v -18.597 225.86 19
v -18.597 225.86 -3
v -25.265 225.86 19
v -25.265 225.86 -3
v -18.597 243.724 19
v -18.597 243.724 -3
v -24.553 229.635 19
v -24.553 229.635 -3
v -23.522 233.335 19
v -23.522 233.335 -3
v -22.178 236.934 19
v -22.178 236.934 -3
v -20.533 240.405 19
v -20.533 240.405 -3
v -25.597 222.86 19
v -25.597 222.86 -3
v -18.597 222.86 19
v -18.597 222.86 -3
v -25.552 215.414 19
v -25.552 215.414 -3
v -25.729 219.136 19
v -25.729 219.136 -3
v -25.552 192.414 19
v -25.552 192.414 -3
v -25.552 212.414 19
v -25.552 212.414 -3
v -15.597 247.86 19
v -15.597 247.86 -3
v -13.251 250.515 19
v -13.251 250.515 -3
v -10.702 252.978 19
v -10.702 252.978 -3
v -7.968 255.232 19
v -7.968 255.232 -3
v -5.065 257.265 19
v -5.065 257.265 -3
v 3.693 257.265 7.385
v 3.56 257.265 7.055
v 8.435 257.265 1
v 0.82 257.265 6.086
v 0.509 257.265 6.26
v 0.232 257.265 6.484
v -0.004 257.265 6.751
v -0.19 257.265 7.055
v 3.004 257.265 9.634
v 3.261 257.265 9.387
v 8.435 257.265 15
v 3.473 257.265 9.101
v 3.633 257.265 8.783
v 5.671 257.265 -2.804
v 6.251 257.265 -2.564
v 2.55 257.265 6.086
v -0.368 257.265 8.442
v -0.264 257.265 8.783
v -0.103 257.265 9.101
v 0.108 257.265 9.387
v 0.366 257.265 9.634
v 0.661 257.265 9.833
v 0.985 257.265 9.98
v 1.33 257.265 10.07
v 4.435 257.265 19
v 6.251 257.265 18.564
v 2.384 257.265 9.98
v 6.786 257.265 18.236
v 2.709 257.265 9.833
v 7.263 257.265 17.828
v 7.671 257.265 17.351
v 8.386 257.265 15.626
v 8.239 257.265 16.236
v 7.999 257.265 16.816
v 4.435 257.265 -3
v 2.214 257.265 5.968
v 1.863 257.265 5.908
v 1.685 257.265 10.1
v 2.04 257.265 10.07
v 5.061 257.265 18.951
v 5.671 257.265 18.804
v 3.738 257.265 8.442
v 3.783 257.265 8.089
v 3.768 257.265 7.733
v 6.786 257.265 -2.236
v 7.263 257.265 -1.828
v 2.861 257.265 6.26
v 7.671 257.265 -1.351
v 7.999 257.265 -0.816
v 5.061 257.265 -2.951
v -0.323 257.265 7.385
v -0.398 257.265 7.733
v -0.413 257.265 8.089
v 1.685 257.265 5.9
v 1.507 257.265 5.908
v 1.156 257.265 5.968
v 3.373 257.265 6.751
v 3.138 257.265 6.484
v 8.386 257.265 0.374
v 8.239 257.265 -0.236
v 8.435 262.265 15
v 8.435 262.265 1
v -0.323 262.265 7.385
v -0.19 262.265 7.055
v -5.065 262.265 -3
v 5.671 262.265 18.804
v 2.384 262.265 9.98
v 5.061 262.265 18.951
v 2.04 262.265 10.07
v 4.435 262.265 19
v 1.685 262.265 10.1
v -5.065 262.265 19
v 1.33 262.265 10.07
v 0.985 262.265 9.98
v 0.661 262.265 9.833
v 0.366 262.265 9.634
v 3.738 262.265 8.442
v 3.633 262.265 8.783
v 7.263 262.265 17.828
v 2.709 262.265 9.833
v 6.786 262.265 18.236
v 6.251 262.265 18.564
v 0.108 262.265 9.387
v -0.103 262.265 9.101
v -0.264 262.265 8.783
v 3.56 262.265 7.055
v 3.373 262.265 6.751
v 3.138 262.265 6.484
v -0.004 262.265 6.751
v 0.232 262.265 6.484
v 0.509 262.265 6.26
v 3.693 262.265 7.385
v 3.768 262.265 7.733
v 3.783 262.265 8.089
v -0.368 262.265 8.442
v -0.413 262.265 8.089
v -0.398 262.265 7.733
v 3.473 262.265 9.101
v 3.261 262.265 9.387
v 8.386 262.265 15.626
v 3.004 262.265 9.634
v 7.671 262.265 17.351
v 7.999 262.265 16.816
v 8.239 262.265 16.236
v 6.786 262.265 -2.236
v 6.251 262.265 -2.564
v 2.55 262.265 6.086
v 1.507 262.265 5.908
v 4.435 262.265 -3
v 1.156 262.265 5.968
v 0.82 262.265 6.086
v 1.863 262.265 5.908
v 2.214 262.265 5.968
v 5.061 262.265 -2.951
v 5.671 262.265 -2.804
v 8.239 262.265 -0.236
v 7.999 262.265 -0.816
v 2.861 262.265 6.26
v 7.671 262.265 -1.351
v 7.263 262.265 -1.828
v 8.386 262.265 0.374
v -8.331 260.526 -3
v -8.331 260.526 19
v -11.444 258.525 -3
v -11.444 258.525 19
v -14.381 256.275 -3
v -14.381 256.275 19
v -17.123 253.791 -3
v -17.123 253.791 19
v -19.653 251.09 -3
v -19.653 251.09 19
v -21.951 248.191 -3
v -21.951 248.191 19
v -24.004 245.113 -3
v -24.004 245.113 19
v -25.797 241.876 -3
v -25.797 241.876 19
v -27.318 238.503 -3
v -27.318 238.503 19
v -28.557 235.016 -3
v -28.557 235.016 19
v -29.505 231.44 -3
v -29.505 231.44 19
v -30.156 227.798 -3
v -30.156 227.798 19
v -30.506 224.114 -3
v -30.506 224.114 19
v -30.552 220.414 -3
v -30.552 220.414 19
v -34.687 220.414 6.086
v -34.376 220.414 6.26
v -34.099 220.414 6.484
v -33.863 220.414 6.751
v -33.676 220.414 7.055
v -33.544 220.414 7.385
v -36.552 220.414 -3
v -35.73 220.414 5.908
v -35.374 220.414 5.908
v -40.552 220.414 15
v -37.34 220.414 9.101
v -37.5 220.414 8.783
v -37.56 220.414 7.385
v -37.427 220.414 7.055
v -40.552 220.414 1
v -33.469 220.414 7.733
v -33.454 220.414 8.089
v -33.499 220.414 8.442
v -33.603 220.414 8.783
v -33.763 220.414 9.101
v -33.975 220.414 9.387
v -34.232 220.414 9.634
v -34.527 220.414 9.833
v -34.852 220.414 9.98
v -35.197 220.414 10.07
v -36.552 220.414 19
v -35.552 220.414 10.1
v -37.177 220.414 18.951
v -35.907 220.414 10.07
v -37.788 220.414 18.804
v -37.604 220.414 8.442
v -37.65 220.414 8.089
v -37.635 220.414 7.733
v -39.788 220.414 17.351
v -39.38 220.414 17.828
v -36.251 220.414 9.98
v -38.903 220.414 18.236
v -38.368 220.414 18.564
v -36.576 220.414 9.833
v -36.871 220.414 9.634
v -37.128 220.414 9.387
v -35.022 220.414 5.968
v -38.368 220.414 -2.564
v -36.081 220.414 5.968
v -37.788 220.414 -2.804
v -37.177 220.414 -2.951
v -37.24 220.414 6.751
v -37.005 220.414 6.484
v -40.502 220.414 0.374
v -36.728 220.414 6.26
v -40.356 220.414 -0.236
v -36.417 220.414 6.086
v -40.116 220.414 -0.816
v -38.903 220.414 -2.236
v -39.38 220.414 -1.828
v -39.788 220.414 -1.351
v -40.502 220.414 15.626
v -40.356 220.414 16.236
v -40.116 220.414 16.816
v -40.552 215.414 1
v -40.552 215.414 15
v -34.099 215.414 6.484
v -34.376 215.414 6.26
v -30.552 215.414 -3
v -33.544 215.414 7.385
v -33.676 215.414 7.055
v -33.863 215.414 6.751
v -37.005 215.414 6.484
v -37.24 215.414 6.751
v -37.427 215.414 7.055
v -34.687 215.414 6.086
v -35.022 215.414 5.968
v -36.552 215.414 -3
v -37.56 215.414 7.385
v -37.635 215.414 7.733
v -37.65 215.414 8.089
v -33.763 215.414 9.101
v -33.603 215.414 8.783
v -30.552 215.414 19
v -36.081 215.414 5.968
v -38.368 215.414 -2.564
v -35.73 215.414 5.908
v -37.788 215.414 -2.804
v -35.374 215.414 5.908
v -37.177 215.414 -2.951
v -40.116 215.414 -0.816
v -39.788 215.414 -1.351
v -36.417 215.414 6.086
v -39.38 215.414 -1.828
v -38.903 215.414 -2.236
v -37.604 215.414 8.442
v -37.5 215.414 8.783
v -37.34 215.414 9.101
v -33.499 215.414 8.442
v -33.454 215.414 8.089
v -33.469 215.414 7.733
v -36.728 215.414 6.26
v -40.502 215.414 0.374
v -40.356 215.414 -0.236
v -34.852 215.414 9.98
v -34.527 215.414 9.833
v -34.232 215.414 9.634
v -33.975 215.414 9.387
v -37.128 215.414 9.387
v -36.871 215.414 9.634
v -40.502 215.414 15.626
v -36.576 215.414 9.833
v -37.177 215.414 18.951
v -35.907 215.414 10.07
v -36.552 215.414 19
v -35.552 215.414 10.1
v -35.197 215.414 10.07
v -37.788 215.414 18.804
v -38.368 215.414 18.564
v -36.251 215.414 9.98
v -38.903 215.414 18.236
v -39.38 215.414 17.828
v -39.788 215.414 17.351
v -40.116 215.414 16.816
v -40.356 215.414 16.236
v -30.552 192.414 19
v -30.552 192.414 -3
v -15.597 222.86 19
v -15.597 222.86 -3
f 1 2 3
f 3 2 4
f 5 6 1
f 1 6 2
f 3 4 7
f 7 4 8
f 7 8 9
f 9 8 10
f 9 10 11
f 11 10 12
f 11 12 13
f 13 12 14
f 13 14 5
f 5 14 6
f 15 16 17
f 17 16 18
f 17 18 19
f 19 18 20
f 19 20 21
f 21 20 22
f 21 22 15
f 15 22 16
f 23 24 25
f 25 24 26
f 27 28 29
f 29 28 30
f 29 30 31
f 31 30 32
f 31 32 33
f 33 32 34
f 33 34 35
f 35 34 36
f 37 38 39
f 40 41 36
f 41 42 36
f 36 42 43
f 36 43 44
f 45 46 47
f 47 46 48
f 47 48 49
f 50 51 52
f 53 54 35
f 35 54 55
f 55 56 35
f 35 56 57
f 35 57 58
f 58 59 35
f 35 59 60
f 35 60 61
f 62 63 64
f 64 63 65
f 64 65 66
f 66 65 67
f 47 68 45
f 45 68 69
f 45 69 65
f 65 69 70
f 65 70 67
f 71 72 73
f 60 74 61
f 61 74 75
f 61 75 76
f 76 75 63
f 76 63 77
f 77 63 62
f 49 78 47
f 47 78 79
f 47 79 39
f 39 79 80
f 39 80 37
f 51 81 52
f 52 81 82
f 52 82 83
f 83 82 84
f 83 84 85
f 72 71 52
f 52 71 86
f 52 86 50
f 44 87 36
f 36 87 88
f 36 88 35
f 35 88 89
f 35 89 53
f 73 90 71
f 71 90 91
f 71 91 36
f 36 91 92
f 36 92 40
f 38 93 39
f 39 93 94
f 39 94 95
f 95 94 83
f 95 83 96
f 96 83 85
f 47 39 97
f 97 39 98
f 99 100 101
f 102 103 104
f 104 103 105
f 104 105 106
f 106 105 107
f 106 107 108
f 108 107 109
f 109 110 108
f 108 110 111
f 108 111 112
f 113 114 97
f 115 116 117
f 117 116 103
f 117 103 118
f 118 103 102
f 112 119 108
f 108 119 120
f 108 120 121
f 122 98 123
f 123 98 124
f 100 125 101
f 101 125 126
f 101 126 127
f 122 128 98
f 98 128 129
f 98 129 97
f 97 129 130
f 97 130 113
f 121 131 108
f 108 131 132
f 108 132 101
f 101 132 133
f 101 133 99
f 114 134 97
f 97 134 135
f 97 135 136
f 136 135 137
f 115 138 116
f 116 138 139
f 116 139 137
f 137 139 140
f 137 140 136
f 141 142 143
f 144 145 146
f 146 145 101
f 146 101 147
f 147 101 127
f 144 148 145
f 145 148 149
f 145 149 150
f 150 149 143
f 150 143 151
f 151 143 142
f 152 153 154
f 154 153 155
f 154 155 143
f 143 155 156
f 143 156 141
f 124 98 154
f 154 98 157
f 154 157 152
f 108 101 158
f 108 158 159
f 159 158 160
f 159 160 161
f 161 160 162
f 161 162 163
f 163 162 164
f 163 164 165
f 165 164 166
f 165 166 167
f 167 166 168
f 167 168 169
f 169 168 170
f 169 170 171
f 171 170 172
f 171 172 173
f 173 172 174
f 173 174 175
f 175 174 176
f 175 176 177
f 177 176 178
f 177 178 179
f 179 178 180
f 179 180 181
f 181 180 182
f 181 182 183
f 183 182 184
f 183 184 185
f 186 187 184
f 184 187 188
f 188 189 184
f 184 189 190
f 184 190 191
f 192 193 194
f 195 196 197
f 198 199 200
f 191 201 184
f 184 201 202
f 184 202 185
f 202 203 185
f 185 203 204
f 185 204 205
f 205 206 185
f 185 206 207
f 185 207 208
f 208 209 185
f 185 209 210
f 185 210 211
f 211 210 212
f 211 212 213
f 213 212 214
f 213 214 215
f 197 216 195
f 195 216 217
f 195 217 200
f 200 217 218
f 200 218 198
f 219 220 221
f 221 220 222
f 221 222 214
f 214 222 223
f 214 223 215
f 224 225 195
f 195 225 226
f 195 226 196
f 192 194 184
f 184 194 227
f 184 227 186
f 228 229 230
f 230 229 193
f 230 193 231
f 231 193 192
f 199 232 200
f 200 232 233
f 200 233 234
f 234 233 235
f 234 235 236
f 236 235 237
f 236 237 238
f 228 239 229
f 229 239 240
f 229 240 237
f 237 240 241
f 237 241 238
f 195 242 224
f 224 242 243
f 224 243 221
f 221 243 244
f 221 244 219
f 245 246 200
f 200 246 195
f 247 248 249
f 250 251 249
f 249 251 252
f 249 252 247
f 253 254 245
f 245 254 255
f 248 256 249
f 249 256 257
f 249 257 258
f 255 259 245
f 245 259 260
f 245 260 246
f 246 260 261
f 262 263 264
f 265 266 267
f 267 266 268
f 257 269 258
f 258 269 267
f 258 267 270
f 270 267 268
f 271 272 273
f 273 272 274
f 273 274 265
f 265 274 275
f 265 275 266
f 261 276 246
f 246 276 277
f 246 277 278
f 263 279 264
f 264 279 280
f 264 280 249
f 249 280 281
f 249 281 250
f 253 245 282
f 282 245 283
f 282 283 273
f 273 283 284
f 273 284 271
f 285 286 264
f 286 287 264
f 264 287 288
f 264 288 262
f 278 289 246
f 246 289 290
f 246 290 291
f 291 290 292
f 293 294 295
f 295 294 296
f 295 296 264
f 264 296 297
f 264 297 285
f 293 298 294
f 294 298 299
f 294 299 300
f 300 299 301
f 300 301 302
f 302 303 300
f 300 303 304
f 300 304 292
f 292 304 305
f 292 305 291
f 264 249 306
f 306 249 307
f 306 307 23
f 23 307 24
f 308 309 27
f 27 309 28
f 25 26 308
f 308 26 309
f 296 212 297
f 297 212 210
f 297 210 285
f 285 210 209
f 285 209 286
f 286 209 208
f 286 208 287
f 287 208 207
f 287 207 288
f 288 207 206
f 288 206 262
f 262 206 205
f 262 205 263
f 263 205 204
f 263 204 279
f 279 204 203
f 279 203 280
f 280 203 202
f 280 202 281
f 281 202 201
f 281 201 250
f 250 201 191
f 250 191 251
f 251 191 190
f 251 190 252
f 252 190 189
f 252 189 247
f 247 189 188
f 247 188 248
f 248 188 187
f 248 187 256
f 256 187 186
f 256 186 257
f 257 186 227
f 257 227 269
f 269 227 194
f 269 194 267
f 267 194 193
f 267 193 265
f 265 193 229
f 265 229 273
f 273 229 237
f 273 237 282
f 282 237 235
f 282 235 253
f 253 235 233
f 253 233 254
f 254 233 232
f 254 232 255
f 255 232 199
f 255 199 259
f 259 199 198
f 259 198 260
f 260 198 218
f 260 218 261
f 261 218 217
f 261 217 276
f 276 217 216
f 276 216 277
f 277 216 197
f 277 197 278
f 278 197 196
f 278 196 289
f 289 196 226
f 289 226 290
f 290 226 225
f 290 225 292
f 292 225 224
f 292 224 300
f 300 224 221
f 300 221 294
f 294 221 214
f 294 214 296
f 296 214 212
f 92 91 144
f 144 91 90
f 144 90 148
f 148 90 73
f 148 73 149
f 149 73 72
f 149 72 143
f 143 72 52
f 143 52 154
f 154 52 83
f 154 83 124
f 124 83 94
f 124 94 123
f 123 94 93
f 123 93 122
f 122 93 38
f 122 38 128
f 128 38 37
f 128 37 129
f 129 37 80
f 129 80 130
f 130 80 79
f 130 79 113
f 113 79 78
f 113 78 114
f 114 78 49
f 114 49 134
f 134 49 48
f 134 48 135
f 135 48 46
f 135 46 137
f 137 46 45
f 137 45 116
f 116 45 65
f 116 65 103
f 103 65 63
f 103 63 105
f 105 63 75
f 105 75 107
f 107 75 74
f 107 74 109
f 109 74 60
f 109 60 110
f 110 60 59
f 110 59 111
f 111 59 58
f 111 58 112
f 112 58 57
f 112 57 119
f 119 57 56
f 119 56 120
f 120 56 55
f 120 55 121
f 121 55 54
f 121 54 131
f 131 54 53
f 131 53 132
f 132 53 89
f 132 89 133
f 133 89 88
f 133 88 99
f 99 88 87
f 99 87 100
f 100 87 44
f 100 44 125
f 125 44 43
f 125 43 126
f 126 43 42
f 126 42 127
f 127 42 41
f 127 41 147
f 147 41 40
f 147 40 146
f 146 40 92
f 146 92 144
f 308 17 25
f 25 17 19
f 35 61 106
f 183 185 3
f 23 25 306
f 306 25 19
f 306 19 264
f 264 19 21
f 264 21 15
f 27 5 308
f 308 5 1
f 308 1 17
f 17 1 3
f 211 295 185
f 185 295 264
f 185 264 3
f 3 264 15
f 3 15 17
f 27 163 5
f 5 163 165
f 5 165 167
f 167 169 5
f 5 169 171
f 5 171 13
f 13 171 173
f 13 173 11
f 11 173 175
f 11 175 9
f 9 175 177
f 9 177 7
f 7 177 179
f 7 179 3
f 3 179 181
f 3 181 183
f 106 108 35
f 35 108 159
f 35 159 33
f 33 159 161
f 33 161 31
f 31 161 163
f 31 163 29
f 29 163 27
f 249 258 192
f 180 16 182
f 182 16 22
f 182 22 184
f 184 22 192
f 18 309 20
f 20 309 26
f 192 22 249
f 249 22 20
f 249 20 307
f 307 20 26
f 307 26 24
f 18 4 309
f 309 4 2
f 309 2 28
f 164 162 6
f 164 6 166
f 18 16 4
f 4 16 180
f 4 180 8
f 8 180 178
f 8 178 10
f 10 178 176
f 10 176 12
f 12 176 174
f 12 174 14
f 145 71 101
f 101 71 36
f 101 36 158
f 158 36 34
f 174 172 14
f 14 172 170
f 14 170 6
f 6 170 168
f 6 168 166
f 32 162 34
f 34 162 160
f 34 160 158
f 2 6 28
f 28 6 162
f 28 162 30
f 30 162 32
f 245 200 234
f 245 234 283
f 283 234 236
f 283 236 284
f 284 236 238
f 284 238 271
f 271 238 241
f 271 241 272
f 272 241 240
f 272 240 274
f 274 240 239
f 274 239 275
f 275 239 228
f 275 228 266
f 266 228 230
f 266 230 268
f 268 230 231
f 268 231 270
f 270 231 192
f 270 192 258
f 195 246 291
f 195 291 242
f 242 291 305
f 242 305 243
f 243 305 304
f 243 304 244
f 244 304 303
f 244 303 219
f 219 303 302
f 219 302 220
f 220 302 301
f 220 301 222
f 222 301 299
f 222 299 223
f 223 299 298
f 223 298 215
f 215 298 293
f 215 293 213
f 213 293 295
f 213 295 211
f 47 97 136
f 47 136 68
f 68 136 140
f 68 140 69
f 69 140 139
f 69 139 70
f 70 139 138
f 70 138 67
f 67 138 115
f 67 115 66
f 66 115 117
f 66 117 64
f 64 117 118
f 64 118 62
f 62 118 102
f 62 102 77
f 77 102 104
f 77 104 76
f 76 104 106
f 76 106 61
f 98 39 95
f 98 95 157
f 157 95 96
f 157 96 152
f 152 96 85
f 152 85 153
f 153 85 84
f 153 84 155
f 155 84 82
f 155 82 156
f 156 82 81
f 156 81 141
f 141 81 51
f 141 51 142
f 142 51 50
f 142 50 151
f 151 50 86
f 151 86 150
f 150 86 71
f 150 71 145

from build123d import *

# Parameters (mm, degrees)
SKETCH3_W                = 13.5
SKETCH3_H                = 5
SKETCH3_W_2              = 10
SKETCH3_W_3              = 5
SKETCH3_H_2              = 23
BOSS_EXTRUDE1_DEPTH      = 45
FILLET1_R                = 2
SKETCH5_R                = 2.1
CUT_EXTRUDE2_DEPTH       = 45
SKETCH6_R                = 2.1
CUT_EXTRUDE3_DEPTH       = 45
SKETCH7_W                = 8.210459319
SKETCH7_H                = 32.58724939
BOSS_EXTRUDE2_DEPTH      = 5
SKETCH8_R                = 2.1
CUT_EXTRUDE5_DEPTH       = 45
BOSS_EXTRUDE3_DEPTH      = 45
SKETCH10_W               = 60.355694637
SKETCH10_H               = 75.381613981
CUT_EXTRUDE7_DEPTH       = 9
SKETCH13_W               = 6.095088126
SKETCH13_H               = 29.055723933
BOSS_EXTRUDE6_DEPTH      = 5
SKETCH14_W               = 6.424633762
SKETCH14_H               = 30.784703445
BOSS_EXTRUDE7_DEPTH      = 5
FILLET3_R                = 2
SKETCH15_R               = 2.1
CUT_EXTRUDE8_DEPTH       = 9
SKETCH16_R               = 2.1
CUT_EXTRUDE9_DEPTH       = 9
SKETCH17_R               = 2.1
SKETCH17_W               = 51.061541061
SKETCH17_H               = 6.00536962
SKETCH17_W_2             = 58.971241115
SKETCH17_H_2             = 35.120826058
CUT_EXTRUDE10_DEPTH      = 42.850344031
CUT_EXTRUDE10_DEPTH_BACK = 29
BOSS_EXTRUDE8_DEPTH      = 5
BOSS_EXTRUDE9_DEPTH      = 5
FILLET5_R                = 4


with BuildPart() as part:
    # Sketch3 → Boss-Extrude1 (new body)
    with BuildSketch(Plane.XY):
        with BuildLine():
            ThreePointArc((-5.06519953, 257.264696919), (-21.146881422, 239.197551787), (-25.551614771, 215.414352888))
            Line((-25.551614771, 215.414352888), (-30.551614771, 215.414352888))
            Line((-30.551614771, 215.414352888), (-30.551614771, 220.414352888))
            ThreePointArc((-30.551614771, 220.414352888), (-24.004098535, 245.112635185), (-5.06519953, 262.264696919))
            Line((-5.06519953, 262.264696919), (-5.06519953, 257.264696919))
        make_face()
        with Locations((1.68480047, 259.764696919)):
            Rectangle(SKETCH3_W, SKETCH3_H)
        with Locations((-35.551614771, 217.914352888)):
            Rectangle(SKETCH3_W_2, SKETCH3_H)
        with Locations((-28.051614771, 203.914352888)):
            Rectangle(SKETCH3_W_3, SKETCH3_H_2)
    extrude(amount=BOSS_EXTRUDE1_DEPTH)

    # Fillet1
    fillet1_edges = [part.edges().sort_by_distance(p)[0] for p in [
        (-40.551614771, 217.914352888, 0),
        (8.43480047, 259.764696919, 45),
        (8.43480047, 259.764696919, 0),
        (-40.551614771, 217.914352888, 45),
    ]]
    fillet(fillet1_edges, radius=FILLET1_R)

    # Sketch5 → Cut-Extrude2 (cut)
    with BuildSketch(Plane(origin=(0, 262.264696919, 0), x_dir=(1, 0, 0), z_dir=(0, 1, 0))):
        with Locations((0.24480047, -40)):
            Circle(SKETCH5_R)
        with Locations((0.24480047, -14.8)):
            Circle(SKETCH5_R)
    extrude(amount=-CUT_EXTRUDE2_DEPTH, mode=Mode.SUBTRACT)

    # Sketch6 → Cut-Extrude3 (cut)
    with BuildSketch(Plane(origin=(0, 220.414352888, 0), x_dir=(1, 0, 0), z_dir=(0, 1, 0))):
        with Locations((-35.551614771, -10)):
            Circle(SKETCH6_R)
        with Locations((-35.551614771, -35)):
            Circle(SKETCH6_R)
    extrude(amount=-CUT_EXTRUDE3_DEPTH, mode=Mode.SUBTRACT)

    # Sketch7 → Boss-Extrude2 (add)
    with BuildSketch(Plane(origin=(0, 262.264696919, 0), x_dir=(1, 0, 0), z_dir=(0, 1, 0))):
        with Locations((1.09445166, -26.923464517)):
            Rectangle(SKETCH7_W, SKETCH7_H)
    extrude(amount=-BOSS_EXTRUDE2_DEPTH)

    # Sketch8 → Cut-Extrude5 (cut)
    with BuildSketch(Plane(origin=(0, 262.264696919, 0), x_dir=(1, 0, 0), z_dir=(0, 1, 0))):
        with Locations((0.24480047, -5)):
            Circle(SKETCH8_R)
        with Locations((0.24480047, -30.2)):
            Circle(SKETCH8_R)
    extrude(amount=-CUT_EXTRUDE5_DEPTH, mode=Mode.SUBTRACT)

    # Sketch9 → Boss-Extrude3 (add, through all)
    with BuildSketch(Plane.XY.offset(45)):
        with BuildLine():
            ThreePointArc((-25.265361734, 225.859750777), (-25.456525287, 224.362535182), (-25.597369426, 222.859750777))
            Line((-25.597369426, 222.859750777), (-18.597369426, 222.859750777))
            Line((-18.597369426, 222.859750777), (-15.597369426, 222.859750777))
            Line((-15.597369426, 222.859750777), (-15.597369426, 247.859750777))
            ThreePointArc((-15.597369426, 247.859750777), (-17.156118075, 245.834377519), (-18.597369426, 243.72377838))
            Line((-18.597369426, 243.72377838), (-18.597369426, 225.859750777))
            Line((-18.597369426, 225.859750777), (-25.265361734, 225.859750777))
        make_face()
        Polygon((-15.597369426, 222.859750777), (-18.597369426, 222.859750777), (-25.551614771, 215.414352888), (-25.551614771, 212.414352888), align=None)
    extrude(amount=-BOSS_EXTRUDE3_DEPTH)

    # Sketch10 → Cut-Extrude7 (cut)
    with BuildSketch(Plane.XY.offset(45)):
        with Locations((-21.743046849, 224.573889929)):
            Rectangle(SKETCH10_W, SKETCH10_H)
    extrude(amount=-CUT_EXTRUDE7_DEPTH, mode=Mode.SUBTRACT)

    # Sketch13 → Boss-Extrude6 (add)
    with BuildSketch(Plane(origin=(0, 220.414352888, 0), x_dir=(1, 0, 0), z_dir=(0, 1, 0))):
        with Locations((-35.175849568, -21.472138034)):
            Rectangle(SKETCH13_W, SKETCH13_H)
    extrude(amount=-BOSS_EXTRUDE6_DEPTH)

    # Sketch14 → Boss-Extrude7 (add)
    with BuildSketch(Plane(origin=(0, 262.264696919, 0), x_dir=(1, 0, 0), z_dir=(0, 1, 0))):
        with Locations((0.1637931, -17.411075239)):
            Rectangle(SKETCH14_W, SKETCH14_H)
    extrude(amount=-BOSS_EXTRUDE7_DEPTH)

    # Fillet3
    fillet3_edges = [part.edges().sort_by_distance(p)[0] for p in [
        (-40.551614771, 217.914352888, 36),
        (8.43480047, 259.764696919, 36),
    ]]
    fillet(fillet3_edges, radius=FILLET3_R)

    # Sketch15 → Cut-Extrude8 (cut)
    with BuildSketch(Plane(origin=(0, 220.414352888, 0), x_dir=(1, 0, 0), z_dir=(0, 1, 0))):
        with Locations((-35.551614771, -8)):
            Circle(SKETCH15_R)
        with Locations((-35.551614771, -28)):
            Circle(SKETCH15_R)
    extrude(amount=-CUT_EXTRUDE8_DEPTH, mode=Mode.SUBTRACT)

    # Sketch16 → Cut-Extrude9 (cut)
    with BuildSketch(Plane(origin=(0, 262.264696919, 0), x_dir=(1, 0, 0), z_dir=(0, 1, 0))):
        with Locations((1.68480047, -8)):
            Circle(SKETCH16_R)
        with Locations((1.68480047, -28)):
            Circle(SKETCH16_R)
    extrude(amount=-CUT_EXTRUDE9_DEPTH, mode=Mode.SUBTRACT)

    # Sketch17 → Cut-Extrude10 (cut, two sides)
    with BuildSketch(Plane(origin=(0, 220.414352888, 0), x_dir=(1, 0, 0), z_dir=(0, 1, 0))) as cut_extrude10_sk:
        with Locations((-35.551614771, -8)):
            Circle(SKETCH17_R)
        with Locations((-15.020844241, 1.00268481)):
            Rectangle(SKETCH17_W, SKETCH17_H)
        with Locations((-11.065994214, -31.560413029)):
            Rectangle(SKETCH17_W_2, SKETCH17_H_2)
    extrude(amount=CUT_EXTRUDE10_DEPTH, mode=Mode.SUBTRACT)
    extrude(cut_extrude10_sk.sketch, amount=-CUT_EXTRUDE10_DEPTH_BACK, mode=Mode.SUBTRACT)

    # Sketch18 → Boss-Extrude8 (add)
    with BuildSketch(Plane.XY.offset(14)):
        with BuildLine():
            ThreePointArc((-15.597369426, 247.859750777), (-10.702470586, 252.977898228), (-5.06519953, 257.264696919))
            Line((-5.06519953, 257.264696919), (8.43480047, 257.264696919))
            Line((8.43480047, 257.264696919), (8.43480047, 262.264696919))
            Line((8.43480047, 262.264696919), (-5.06519953, 262.264696919))
            ThreePointArc((-5.06519953, 262.264696919), (-24.004098535, 245.112635185), (-30.551614771, 220.414352888))
            Line((-30.551614771, 220.414352888), (-40.551614771, 220.414352888))
            Line((-40.551614771, 220.414352888), (-40.551614771, 215.414352888))
            Line((-40.551614771, 215.414352888), (-30.551614771, 215.414352888))
            Line((-30.551614771, 215.414352888), (-30.551614771, 192.414352888))
            Line((-30.551614771, 192.414352888), (-25.551614771, 192.414352888))
            Line((-25.551614771, 192.414352888), (-25.551614771, 212.414352888))
            Line((-25.551614771, 212.414352888), (-15.597369426, 222.859750777))
            Line((-15.597369426, 222.859750777), (-15.597369426, 247.859750777))
        make_face()
        with BuildLine():
            ThreePointArc((-25.551614771, 215.414352888), (-25.728742574, 219.136103908), (-25.597369426, 222.859750777))
            Line((-25.597369426, 222.859750777), (-18.597369426, 222.859750777))
            Line((-18.597369426, 222.859750777), (-25.551614771, 215.414352888))
        make_face(mode=Mode.SUBTRACT)
        with BuildLine():
            ThreePointArc((-25.265361734, 225.859750777), (-22.888422833, 235.14899927), (-18.597369426, 243.72377838))
            Line((-18.597369426, 243.72377838), (-18.597369426, 225.859750777))
            Line((-18.597369426, 225.859750777), (-25.265361734, 225.859750777))
        make_face(mode=Mode.SUBTRACT)
    extrude(amount=BOSS_EXTRUDE8_DEPTH)

    # Sketch19 → Boss-Extrude9 (add)
    with BuildSketch(Plane(origin=(0, 0, 2), x_dir=(-1, 0, 0), z_dir=(0, 0, -1))):
        with BuildLine():
            Line((-8.43480047, 257.264696919), (5.06519953, 257.264696919))
            ThreePointArc((5.06519953, 257.264696919), (10.702470586, 252.977898228), (15.597369426, 247.859750777))
            Line((15.597369426, 247.859750777), (15.597369426, 222.859750777))
            Line((15.597369426, 222.859750777), (25.551614771, 212.414352888))
            Line((25.551614771, 212.414352888), (25.551614771, 192.414352888))
            Line((25.551614771, 192.414352888), (30.551614771, 192.414352888))
            Line((30.551614771, 192.414352888), (30.551614771, 215.414352888))
            Line((30.551614771, 215.414352888), (40.551614771, 215.414352888))
            Line((40.551614771, 215.414352888), (40.551614771, 220.414352888))
            Line((40.551614771, 220.414352888), (30.551614771, 220.414352888))
            ThreePointArc((30.551614771, 220.414352888), (24.004098535, 245.112635185), (5.06519953, 262.264696919))
            Line((5.06519953, 262.264696919), (-8.43480047, 262.264696919))
            Line((-8.43480047, 262.264696919), (-8.43480047, 257.264696919))
        make_face()
        with BuildLine():
            Line((18.597369426, 222.859750777), (25.597369426, 222.859750777))
            ThreePointArc((25.597369426, 222.859750777), (25.728742574, 219.136103908), (25.551614771, 215.414352888))
            Line((25.551614771, 215.414352888), (18.597369426, 222.859750777))
        make_face(mode=Mode.SUBTRACT)
        with BuildLine():
            Line((18.597369426, 225.859750777), (18.597369426, 243.72377838))
            ThreePointArc((18.597369426, 243.72377838), (22.888422833, 235.14899927), (25.265361734, 225.859750777))
            Line((25.265361734, 225.859750777), (18.597369426, 225.859750777))
        make_face(mode=Mode.SUBTRACT)
    extrude(amount=BOSS_EXTRUDE9_DEPTH)

    # Fillet5
    fillet5_edges = [part.edges().sort_by_distance(p)[0] for p in [
        (-40.551614771, 217.914352888, 19),
        (8.43480047, 259.764696919, 19),
        (-40.551614771, 217.914352888, -3),
        (8.43480047, 259.764696919, -3),
    ]]
    fillet(fillet5_edges, radius=FILLET5_R)


solid = part.part
